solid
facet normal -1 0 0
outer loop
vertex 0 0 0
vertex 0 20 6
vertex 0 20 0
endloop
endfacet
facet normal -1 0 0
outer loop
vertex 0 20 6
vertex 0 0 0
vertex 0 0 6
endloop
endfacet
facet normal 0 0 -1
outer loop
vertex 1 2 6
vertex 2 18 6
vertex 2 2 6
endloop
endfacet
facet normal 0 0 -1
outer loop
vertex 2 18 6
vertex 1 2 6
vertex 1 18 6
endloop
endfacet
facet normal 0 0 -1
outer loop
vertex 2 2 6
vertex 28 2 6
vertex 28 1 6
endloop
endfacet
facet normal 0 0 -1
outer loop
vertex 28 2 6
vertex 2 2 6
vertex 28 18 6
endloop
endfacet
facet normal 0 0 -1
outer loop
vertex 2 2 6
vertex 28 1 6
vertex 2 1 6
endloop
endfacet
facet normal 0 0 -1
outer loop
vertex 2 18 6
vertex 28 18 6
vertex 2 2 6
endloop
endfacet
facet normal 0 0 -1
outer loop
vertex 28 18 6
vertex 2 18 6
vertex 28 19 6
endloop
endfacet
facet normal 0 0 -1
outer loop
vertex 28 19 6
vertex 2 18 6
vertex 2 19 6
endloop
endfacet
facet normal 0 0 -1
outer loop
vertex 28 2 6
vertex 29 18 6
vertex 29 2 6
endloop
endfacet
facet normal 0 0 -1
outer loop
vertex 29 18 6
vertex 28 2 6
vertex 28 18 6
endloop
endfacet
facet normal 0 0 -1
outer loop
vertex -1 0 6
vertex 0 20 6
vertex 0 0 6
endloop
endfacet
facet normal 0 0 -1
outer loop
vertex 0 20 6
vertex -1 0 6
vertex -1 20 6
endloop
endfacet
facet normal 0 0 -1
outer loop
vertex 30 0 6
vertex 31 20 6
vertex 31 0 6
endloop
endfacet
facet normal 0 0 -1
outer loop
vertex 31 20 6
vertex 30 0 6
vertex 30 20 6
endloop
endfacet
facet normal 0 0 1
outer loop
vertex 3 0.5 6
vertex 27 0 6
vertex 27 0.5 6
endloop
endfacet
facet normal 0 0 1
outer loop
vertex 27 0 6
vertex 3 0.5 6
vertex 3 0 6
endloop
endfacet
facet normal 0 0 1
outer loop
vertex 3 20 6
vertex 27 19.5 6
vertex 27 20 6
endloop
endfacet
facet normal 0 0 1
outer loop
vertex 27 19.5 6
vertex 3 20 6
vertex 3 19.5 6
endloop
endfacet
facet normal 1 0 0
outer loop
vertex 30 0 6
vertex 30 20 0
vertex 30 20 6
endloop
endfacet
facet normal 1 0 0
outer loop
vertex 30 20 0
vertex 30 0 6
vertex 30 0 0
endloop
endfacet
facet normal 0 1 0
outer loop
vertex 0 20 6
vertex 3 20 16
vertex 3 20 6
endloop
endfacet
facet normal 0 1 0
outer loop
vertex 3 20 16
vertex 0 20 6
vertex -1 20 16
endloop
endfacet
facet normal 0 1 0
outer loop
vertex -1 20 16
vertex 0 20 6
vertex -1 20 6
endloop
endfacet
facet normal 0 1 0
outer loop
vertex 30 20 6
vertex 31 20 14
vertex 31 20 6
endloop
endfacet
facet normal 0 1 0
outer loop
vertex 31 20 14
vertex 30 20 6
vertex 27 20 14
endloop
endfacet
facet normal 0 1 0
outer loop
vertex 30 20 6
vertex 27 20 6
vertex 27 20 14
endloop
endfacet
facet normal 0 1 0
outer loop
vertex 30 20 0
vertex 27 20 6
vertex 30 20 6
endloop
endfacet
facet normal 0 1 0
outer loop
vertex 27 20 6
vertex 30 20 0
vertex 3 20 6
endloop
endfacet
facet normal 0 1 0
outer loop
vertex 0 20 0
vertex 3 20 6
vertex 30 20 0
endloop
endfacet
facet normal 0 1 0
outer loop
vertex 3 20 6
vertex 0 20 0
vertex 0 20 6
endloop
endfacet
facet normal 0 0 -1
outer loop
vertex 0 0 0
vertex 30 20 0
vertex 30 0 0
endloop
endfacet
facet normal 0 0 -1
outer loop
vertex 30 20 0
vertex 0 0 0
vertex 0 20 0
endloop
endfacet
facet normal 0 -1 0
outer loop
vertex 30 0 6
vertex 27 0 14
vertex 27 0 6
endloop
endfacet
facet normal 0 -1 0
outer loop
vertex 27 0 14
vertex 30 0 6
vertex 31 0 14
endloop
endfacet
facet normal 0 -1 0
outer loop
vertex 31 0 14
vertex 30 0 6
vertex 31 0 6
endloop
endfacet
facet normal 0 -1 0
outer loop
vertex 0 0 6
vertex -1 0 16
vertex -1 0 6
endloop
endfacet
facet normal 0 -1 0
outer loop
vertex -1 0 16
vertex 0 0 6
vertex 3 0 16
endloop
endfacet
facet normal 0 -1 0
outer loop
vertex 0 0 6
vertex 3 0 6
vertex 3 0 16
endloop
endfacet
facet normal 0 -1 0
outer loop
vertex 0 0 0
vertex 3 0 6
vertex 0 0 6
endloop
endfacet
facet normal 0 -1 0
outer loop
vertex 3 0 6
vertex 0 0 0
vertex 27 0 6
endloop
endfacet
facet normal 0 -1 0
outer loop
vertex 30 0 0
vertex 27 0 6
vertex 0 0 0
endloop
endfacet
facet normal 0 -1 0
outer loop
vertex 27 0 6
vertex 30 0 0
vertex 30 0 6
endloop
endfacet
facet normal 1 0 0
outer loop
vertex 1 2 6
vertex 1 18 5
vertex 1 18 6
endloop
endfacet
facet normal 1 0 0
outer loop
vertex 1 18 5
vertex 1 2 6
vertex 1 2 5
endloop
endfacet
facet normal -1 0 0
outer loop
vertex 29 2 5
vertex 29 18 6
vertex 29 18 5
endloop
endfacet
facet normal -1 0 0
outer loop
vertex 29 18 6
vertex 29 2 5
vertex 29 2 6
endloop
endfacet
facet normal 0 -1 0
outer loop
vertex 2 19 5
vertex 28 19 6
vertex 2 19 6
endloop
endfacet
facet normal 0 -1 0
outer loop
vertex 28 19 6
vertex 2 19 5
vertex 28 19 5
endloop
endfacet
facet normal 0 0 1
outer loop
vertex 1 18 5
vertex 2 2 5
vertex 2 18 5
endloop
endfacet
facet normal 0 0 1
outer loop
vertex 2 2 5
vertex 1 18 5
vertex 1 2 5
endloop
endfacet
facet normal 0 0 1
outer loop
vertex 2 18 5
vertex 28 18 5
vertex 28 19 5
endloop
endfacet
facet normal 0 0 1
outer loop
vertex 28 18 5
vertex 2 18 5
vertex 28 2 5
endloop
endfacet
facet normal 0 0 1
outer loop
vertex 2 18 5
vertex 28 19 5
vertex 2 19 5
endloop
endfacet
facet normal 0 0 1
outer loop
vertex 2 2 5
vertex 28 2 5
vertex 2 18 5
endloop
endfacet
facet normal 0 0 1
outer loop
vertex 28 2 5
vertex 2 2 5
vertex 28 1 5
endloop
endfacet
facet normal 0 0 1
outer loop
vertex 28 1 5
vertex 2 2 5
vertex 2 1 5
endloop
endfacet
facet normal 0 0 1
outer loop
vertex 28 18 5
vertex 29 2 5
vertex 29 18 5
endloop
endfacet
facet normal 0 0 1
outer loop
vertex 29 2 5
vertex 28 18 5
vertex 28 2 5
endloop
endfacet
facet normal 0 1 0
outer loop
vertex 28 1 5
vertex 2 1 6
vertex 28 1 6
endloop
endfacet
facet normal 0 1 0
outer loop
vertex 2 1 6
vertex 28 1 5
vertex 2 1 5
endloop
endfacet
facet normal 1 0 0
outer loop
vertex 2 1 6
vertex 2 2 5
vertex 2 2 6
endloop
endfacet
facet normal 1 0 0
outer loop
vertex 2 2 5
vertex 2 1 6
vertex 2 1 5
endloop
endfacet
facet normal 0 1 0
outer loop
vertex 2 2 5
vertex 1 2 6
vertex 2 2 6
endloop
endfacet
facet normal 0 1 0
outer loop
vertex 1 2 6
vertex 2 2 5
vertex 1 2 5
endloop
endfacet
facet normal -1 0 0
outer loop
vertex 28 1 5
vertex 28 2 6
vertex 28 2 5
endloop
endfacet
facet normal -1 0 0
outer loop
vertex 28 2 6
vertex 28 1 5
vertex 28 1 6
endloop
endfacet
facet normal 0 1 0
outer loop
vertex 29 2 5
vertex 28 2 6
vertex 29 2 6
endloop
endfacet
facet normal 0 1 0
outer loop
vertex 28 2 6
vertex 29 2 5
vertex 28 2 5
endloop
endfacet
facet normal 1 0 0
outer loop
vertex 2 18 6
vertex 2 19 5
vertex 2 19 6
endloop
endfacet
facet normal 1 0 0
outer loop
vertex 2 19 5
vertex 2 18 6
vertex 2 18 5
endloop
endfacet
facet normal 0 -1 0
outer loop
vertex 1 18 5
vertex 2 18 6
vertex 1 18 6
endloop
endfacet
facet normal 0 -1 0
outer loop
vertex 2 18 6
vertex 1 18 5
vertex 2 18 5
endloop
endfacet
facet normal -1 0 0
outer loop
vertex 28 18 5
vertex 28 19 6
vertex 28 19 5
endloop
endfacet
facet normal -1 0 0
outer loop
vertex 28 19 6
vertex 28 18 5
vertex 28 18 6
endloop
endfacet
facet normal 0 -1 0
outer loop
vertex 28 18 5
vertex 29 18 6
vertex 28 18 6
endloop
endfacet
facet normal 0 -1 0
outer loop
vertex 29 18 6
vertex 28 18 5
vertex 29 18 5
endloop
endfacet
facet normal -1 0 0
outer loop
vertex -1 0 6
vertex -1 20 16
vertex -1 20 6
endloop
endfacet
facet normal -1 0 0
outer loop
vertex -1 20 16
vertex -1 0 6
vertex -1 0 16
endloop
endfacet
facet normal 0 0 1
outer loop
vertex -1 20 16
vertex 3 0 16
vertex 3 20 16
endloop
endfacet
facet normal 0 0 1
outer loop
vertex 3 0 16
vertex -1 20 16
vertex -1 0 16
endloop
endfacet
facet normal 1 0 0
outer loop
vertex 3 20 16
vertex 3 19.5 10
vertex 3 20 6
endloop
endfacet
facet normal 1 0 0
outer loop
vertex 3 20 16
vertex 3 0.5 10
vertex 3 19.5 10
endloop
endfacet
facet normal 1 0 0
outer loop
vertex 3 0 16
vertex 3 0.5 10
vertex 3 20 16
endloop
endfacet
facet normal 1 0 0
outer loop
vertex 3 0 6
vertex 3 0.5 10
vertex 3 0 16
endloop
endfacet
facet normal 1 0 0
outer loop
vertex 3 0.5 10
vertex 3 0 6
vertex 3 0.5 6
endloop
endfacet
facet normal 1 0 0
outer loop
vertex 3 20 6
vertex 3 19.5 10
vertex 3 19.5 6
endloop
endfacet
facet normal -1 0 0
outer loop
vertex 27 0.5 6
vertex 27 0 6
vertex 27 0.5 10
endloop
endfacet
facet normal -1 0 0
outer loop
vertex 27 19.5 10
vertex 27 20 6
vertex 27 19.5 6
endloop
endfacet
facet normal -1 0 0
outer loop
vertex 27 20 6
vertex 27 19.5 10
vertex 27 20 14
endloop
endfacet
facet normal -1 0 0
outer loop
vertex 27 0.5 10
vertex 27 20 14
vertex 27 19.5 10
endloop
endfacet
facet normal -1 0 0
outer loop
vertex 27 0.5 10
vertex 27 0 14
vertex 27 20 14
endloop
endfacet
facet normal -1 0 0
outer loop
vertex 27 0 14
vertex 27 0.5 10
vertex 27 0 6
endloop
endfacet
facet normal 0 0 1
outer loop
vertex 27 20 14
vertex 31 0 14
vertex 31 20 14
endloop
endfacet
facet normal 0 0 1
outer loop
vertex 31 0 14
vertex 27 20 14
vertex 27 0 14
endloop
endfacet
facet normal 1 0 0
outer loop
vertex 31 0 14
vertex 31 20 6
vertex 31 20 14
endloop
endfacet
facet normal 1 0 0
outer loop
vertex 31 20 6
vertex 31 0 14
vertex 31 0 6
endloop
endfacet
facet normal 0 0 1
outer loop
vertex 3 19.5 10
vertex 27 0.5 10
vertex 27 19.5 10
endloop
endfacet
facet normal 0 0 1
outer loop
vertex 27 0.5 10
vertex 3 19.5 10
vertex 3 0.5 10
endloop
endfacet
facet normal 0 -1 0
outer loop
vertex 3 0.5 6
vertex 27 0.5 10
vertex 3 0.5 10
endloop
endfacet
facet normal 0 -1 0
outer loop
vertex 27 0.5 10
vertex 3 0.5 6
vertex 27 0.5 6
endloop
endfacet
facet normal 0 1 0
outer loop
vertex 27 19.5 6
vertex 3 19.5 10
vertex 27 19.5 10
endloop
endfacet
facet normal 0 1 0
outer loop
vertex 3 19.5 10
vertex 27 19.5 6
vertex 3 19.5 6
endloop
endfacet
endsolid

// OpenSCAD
// Bed frame
difference() {
    cube([30, 20, 6]);
    translate([1, 1, 5]) cube([28, 18, 7]);
}

// Legs
translate([0, 0, 0]) cube([2, 2, 6]);
translate([28, 0, 0]) cube([2, 2, 6]);
translate([0, 18, 0]) cube([2, 2, 6]);
translate([28, 18, 0]) cube([2, 2, 6]);

// Headboard
translate([-1, 0, 6]) cube([4, 20, 10]);

// Footboard
translate([27, 0, 6]) cube([4, 20, 8]);

// Mattress
translate([0.5, 0.5, 6]) cube([29, 19, 4]);
